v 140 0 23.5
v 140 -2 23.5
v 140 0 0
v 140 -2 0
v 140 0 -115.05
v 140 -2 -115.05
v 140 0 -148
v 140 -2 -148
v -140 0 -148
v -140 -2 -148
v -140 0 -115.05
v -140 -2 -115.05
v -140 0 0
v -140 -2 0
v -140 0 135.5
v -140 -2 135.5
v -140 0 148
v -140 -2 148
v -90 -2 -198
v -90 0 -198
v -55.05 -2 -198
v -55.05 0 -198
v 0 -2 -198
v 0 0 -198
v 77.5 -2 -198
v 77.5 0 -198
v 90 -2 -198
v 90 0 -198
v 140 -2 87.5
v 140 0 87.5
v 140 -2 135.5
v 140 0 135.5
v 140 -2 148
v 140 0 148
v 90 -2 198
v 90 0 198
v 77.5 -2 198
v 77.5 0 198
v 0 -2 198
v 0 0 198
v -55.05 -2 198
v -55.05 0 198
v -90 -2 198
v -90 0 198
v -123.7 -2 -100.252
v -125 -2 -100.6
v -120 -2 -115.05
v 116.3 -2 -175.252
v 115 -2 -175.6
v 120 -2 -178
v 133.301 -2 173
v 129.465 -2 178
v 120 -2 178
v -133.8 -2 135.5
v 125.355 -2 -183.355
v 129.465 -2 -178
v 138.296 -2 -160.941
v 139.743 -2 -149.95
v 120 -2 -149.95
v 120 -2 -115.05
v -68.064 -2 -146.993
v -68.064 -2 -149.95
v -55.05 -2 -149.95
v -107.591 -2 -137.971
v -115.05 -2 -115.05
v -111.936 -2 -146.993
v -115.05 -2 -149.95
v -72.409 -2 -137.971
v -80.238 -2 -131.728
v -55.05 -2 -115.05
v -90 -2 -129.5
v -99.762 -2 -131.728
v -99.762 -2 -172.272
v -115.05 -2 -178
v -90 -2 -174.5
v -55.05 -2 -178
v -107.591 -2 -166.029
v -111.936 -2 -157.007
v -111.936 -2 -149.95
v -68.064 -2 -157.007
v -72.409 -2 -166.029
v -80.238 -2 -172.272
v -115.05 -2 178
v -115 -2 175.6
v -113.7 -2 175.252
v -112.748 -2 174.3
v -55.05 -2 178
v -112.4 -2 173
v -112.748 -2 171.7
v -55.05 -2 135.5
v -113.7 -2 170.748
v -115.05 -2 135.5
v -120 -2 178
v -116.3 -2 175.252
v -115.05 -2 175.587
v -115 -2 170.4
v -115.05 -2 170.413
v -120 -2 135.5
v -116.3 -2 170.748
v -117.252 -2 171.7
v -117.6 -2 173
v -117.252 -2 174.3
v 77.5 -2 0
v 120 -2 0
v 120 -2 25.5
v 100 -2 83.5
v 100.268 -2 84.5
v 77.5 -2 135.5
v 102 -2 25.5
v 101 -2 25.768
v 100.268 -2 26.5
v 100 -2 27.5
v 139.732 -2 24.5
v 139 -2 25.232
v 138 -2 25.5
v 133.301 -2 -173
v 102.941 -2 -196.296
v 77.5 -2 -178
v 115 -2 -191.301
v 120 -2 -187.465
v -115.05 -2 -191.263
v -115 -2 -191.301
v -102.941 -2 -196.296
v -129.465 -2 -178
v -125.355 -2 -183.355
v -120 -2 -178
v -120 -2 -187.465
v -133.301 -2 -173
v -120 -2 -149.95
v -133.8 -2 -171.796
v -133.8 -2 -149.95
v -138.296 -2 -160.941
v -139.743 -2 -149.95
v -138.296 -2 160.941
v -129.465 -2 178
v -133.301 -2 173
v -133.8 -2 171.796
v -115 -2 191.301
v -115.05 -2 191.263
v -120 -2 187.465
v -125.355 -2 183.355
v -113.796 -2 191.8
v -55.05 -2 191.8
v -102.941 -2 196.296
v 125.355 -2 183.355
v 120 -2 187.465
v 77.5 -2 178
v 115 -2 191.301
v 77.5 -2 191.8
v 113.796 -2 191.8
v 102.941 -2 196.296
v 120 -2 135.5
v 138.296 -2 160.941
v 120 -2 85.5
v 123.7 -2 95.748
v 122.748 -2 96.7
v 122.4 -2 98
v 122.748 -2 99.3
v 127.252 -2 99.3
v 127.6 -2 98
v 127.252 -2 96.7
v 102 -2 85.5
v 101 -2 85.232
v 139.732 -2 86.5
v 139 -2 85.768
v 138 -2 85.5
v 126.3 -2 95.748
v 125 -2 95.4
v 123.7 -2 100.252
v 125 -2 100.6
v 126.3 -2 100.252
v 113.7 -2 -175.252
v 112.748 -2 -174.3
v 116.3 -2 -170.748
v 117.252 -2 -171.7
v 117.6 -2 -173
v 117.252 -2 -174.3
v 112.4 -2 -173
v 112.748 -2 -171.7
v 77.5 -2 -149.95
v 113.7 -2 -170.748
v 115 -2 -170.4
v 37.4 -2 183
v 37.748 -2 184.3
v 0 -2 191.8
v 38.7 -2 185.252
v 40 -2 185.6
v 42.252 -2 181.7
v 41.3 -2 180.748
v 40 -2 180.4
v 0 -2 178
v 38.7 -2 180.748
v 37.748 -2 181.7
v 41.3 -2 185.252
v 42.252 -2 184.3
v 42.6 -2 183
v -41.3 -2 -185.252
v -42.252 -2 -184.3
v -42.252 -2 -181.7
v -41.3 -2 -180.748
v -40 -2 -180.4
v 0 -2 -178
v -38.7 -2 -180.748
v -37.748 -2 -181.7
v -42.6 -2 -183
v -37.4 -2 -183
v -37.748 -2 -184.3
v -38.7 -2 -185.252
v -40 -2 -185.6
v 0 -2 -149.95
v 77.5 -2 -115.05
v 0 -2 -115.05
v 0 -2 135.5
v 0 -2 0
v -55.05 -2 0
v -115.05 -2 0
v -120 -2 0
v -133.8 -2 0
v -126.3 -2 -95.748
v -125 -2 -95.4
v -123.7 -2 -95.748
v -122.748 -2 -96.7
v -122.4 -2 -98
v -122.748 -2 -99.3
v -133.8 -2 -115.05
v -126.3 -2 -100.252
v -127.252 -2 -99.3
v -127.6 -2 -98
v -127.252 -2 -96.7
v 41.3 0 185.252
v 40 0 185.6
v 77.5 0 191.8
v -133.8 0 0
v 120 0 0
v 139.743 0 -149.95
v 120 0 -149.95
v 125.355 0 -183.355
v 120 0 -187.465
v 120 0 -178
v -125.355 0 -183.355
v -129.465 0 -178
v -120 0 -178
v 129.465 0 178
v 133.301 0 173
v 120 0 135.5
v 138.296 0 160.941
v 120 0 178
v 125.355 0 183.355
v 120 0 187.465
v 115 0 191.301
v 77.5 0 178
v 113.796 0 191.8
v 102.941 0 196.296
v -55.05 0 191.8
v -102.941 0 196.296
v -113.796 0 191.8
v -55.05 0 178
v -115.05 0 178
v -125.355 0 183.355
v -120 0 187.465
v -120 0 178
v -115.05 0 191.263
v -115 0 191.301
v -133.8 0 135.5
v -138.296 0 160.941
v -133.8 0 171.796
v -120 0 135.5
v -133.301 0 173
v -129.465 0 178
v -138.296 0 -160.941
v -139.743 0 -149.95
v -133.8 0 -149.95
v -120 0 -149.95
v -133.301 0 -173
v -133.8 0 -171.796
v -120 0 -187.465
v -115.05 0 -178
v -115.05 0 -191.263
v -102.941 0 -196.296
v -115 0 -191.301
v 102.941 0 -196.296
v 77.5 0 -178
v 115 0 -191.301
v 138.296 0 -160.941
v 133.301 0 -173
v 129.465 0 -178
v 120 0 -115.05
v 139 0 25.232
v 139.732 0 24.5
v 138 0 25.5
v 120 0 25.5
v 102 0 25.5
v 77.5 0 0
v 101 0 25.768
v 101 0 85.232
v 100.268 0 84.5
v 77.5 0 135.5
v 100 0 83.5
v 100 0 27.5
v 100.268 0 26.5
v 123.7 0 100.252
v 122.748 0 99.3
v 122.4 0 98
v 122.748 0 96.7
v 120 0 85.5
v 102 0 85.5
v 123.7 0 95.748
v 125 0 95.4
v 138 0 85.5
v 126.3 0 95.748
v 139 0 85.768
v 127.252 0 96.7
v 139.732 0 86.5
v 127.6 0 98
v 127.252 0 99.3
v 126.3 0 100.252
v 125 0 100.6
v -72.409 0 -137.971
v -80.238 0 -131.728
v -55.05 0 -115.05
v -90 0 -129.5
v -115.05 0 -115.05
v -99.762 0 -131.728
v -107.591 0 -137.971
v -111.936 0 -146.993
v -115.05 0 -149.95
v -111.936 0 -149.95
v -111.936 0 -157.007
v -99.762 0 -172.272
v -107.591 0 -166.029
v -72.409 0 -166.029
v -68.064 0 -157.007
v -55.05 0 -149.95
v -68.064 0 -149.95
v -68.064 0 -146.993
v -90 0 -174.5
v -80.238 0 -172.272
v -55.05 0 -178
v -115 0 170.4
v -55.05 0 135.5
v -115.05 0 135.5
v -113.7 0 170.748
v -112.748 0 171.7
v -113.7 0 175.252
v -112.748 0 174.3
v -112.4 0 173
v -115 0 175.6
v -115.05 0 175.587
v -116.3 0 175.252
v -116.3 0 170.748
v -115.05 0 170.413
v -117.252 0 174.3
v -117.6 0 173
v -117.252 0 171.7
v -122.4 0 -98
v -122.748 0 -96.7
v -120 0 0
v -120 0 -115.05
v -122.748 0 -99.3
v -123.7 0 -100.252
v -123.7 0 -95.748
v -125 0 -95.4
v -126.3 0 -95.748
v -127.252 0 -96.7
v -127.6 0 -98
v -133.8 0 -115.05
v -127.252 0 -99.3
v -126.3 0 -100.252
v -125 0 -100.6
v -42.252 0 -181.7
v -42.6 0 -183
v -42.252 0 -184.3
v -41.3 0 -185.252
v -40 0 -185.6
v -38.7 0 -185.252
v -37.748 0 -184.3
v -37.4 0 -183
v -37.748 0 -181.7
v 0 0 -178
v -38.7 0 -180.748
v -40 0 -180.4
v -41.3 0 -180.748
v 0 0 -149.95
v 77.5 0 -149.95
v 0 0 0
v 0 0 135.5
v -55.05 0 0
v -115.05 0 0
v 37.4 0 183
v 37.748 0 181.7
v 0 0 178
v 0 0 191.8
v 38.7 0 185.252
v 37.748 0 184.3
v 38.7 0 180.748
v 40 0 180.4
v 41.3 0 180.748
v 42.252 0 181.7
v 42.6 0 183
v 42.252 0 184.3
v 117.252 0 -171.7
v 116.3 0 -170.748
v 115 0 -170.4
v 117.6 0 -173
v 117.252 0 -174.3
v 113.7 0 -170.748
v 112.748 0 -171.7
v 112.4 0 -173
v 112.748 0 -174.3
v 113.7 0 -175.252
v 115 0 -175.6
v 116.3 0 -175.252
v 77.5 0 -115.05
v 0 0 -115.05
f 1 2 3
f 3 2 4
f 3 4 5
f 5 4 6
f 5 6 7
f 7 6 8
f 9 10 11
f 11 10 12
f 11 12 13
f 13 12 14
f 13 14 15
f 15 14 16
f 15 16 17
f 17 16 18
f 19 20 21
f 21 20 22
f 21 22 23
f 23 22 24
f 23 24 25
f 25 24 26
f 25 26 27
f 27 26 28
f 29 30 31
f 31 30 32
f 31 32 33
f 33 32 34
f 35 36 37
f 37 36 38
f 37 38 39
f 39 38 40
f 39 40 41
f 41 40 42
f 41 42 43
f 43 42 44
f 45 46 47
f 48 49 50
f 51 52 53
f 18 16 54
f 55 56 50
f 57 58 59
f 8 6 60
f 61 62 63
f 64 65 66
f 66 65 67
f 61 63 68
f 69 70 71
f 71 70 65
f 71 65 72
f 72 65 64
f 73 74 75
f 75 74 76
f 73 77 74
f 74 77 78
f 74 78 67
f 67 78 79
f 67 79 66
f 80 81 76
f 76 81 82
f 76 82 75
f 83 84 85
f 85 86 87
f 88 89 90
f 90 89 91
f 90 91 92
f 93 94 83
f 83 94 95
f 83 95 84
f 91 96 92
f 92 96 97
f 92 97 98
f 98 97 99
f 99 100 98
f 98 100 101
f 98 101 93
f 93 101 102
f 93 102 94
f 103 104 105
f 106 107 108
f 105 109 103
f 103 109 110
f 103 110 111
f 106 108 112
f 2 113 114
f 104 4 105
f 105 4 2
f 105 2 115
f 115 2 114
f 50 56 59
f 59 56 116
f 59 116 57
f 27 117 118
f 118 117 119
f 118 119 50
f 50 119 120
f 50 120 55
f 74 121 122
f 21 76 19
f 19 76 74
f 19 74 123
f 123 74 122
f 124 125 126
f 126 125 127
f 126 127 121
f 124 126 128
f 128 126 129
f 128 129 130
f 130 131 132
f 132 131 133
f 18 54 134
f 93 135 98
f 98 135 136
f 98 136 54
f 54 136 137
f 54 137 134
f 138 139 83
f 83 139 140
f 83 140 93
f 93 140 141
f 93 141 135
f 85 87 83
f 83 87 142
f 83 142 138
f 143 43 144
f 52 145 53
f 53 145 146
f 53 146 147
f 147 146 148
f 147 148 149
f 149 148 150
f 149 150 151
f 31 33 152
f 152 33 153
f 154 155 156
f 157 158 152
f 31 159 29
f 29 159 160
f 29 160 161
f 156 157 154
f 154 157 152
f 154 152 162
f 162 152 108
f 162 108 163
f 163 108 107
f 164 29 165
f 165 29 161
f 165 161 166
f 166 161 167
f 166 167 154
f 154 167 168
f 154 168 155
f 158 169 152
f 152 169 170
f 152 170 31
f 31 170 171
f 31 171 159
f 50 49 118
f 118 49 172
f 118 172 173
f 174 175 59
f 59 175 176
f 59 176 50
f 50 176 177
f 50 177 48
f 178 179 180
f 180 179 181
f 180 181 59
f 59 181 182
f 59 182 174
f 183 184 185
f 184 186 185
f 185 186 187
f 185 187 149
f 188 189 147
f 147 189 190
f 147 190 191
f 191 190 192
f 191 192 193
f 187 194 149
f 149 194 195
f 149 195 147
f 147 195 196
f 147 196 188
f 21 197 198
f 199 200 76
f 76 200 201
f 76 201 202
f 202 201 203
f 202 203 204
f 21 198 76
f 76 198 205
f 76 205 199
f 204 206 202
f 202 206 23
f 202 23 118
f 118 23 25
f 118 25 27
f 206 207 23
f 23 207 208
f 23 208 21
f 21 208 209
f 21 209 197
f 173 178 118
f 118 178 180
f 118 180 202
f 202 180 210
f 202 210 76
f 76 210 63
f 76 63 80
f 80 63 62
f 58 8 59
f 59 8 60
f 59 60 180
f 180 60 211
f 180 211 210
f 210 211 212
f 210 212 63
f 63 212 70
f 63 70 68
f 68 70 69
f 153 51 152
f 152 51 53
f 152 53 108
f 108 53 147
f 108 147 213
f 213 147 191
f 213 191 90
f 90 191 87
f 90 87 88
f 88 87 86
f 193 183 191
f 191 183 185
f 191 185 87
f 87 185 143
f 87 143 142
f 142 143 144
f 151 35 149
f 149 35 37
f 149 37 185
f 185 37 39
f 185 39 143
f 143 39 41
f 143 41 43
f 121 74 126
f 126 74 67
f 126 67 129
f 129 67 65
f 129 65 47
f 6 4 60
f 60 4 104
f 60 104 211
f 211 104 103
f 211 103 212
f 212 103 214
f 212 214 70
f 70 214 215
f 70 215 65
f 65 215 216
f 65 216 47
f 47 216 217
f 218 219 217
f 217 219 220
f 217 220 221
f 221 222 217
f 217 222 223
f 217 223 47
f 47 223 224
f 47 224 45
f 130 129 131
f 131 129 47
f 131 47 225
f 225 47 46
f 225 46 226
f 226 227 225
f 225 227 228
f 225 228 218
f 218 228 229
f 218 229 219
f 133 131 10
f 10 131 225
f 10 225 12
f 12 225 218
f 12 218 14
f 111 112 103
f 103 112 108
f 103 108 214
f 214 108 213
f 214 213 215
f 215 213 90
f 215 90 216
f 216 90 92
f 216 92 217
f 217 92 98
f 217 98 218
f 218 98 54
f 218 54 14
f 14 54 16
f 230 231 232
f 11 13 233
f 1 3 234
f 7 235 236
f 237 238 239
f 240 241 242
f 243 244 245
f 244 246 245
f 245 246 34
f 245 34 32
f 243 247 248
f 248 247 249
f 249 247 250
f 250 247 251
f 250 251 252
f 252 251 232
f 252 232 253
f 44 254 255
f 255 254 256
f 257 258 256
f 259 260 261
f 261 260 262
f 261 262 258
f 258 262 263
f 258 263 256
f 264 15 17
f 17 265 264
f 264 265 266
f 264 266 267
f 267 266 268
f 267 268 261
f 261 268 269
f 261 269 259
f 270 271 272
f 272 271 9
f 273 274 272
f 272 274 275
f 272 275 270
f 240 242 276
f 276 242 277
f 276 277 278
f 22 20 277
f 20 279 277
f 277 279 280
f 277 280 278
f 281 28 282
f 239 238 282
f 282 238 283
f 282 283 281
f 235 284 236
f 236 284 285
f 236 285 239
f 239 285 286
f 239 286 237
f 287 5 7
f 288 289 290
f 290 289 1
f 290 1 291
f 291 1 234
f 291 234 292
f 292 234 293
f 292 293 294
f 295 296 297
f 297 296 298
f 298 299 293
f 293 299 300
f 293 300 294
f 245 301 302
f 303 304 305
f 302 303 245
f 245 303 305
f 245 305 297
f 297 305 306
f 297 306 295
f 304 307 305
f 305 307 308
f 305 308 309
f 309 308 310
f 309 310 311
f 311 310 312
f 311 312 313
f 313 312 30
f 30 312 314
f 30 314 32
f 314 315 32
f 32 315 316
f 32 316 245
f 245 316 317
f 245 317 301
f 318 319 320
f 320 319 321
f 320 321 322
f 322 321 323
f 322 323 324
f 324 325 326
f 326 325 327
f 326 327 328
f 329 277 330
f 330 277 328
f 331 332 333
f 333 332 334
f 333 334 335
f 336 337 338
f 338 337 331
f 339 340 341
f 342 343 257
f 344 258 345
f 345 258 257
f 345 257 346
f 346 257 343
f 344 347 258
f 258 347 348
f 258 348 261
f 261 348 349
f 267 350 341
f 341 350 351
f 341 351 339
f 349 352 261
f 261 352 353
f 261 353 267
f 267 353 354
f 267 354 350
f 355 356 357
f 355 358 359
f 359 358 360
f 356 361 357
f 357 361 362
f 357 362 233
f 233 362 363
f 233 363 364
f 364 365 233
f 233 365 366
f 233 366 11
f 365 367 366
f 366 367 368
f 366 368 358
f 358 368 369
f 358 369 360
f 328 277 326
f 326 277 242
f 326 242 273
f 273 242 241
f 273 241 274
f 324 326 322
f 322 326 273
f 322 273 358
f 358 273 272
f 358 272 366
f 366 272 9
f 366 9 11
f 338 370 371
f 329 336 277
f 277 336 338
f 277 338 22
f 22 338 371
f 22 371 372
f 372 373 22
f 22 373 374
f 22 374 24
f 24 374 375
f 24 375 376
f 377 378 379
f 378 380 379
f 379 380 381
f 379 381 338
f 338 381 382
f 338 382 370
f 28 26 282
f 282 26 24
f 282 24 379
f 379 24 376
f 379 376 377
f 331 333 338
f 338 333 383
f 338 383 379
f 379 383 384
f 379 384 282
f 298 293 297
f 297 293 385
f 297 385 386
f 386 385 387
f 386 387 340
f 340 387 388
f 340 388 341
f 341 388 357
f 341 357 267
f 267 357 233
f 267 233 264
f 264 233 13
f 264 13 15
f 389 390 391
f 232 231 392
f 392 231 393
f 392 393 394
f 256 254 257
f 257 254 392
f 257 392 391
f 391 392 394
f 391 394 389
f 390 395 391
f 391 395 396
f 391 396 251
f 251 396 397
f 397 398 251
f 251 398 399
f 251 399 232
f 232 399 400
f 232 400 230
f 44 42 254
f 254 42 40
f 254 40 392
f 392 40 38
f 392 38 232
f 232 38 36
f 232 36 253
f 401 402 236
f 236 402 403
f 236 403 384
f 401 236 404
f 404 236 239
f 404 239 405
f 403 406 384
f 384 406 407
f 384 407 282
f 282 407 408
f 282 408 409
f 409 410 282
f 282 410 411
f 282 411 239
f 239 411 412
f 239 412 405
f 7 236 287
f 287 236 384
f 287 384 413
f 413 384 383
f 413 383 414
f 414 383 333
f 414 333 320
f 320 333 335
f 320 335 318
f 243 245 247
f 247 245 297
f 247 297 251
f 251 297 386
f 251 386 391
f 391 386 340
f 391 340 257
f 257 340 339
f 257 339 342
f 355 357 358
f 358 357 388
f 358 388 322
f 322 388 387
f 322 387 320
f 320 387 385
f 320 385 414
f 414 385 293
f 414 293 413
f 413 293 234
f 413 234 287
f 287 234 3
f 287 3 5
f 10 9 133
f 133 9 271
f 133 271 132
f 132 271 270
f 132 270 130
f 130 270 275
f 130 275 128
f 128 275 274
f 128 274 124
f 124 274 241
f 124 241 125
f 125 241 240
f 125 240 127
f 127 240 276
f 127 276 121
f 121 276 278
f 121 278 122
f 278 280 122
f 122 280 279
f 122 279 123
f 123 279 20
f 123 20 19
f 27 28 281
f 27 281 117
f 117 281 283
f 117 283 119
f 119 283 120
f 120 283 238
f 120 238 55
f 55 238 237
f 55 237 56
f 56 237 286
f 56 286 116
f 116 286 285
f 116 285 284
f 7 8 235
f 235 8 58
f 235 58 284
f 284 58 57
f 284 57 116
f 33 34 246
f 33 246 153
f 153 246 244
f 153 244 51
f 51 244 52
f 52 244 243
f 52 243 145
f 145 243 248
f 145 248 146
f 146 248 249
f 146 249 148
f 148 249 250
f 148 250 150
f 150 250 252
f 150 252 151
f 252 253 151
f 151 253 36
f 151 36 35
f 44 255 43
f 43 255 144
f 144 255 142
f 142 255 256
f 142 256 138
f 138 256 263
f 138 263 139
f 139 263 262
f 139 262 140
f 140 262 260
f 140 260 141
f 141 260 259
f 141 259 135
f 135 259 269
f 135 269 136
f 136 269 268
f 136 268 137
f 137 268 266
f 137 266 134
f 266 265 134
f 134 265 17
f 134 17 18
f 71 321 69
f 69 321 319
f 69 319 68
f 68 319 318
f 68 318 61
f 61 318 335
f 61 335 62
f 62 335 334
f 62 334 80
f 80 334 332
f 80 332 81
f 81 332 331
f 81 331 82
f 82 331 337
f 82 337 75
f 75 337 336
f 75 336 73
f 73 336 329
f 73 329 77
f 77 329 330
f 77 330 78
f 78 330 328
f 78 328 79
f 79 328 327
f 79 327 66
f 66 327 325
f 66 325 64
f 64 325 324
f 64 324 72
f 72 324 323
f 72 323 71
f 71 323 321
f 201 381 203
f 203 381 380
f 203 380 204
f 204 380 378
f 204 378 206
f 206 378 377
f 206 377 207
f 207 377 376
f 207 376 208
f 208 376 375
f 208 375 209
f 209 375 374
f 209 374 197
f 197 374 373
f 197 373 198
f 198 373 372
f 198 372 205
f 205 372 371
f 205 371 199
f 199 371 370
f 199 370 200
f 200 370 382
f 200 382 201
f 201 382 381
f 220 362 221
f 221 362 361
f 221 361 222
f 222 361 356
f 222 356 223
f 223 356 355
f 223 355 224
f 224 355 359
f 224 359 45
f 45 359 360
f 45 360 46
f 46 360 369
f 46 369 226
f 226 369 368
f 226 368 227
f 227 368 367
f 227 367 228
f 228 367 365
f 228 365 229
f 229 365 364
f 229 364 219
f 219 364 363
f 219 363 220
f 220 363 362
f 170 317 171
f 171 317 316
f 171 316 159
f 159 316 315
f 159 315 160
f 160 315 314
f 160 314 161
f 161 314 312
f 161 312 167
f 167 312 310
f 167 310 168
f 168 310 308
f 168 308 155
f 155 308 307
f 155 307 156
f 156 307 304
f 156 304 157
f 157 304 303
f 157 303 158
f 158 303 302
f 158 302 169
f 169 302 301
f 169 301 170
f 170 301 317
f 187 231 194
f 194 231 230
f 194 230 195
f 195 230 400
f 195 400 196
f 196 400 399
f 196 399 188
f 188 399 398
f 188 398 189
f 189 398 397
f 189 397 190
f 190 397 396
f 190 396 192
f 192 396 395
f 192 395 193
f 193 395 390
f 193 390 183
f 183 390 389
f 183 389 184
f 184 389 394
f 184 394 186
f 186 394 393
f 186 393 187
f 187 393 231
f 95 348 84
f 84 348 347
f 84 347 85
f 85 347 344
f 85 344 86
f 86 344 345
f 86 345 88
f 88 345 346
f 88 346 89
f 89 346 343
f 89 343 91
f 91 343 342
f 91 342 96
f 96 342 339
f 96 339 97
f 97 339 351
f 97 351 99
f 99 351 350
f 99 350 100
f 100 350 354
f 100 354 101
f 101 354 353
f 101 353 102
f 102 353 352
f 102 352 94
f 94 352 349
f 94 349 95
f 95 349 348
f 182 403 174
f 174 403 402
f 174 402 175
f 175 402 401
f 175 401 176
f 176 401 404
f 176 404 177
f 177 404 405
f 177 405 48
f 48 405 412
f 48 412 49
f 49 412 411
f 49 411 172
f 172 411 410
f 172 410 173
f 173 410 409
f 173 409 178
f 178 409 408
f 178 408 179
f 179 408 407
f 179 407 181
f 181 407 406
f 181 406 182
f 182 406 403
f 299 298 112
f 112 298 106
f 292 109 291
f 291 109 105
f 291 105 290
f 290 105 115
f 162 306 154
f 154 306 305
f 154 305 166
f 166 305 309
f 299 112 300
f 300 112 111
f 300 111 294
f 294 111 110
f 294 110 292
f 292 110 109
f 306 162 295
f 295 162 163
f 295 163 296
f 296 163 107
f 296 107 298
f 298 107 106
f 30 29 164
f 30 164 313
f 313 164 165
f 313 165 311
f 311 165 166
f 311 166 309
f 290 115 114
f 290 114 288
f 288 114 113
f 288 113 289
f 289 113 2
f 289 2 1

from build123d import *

# Parameters (mm, degrees)
SKETCH1_W             = 280
SKETCH1_H             = 396
BASE_FLANGE1_DEPTH    = 2
BREAK_CORNER1_START   = -2
BREAK_CORNER1_DEPTH   = 2
SKETCH2_R             = 22.5
CUT_EXTRUDE1_DEPTH    = 243.503608221
SKETCH3_R             = 2.6
CUT_EXTRUDE2_DEPTH    = 243.503608221
SKETCH4_W             = 40
SKETCH4_H             = 60
CUT_EXTRUDE3_DEPTH    = 243.503608221
BREAK_CORNER2_START   = -2
BREAK_CORNER2_DEPTH   = 2
BREAK_CORNER2_2_DEPTH = 2


# Read off the part's stored shape, not the designer's step: Break-Corner1, Break-Corner2
# Sheet-metal steps are written as plain solids
with BuildPart() as part:
    # Sketch1 → Base-Flange1 (new body)
    with BuildSketch(Plane(origin=(0, 0, 0), x_dir=(1, 0, 0), z_dir=(0, 1, 0))):
        Rectangle(SKETCH1_W, SKETCH1_H)
    extrude(amount=-BASE_FLANGE1_DEPTH)

    # Break-Corner1 outline → Break-Corner1 (cut)
    with BuildSketch(Plane(origin=(0, 0, 0), x_dir=(1, 0, 0), z_dir=(0, 1, 0)).offset(BREAK_CORNER1_START)):
        with BuildLine():
            ThreePointArc((-140, 148), (-125.355339059, 183.355339059), (-90, 198))
            Line((-90, 198), (-140, 198))
            Line((-140, 198), (-140, 148))
        make_face()
        with BuildLine():
            Line((140, 198), (90, 198))
            ThreePointArc((90, 198), (125.355339059, 183.355339059), (140, 148))
            Line((140, 148), (140, 198))
        make_face()
        with BuildLine():
            ThreePointArc((-90, -198), (-125.355339059, -183.355339059), (-140, -148))
            Line((-140, -148), (-140, -198))
            Line((-140, -198), (-90, -198))
        make_face()
        with BuildLine():
            Line((140, -198), (140, -148))
            ThreePointArc((140, -148), (125.355339059, -183.355339059), (90, -198))
            Line((90, -198), (140, -198))
        make_face()
    extrude(amount=BREAK_CORNER1_DEPTH, mode=Mode.SUBTRACT)

    # Sketch2 → Cut-Extrude1 (cut, through all)
    with BuildSketch(Plane(origin=(0, 0, 0), x_dir=(1, 0, 0), z_dir=(0, 1, 0))):
        with Locations(Location((-90, 152, 0), (0, 0, 270))):
            Circle(SKETCH2_R)
    extrude(amount=-CUT_EXTRUDE1_DEPTH, mode=Mode.SUBTRACT)

    # Sketch3 → Cut-Extrude2 (cut, through all)
    with BuildSketch(Plane(origin=(0, 0, 0), x_dir=(1, 0, 0), z_dir=(0, 1, 0))):
        with Locations(Location((-40, 183, 0), (0, 0, 270))):
            Circle(SKETCH3_R)
        with Locations(Location((-125, 98, 0), (0, 0, 270))):
            Circle(SKETCH3_R)
        with Locations(Location((125, -98, 0), (0, 0, 270))):
            Circle(SKETCH3_R)
        with Locations(Location((40, -183, 0), (0, 0, 270))):
            Circle(SKETCH3_R)
        with Locations(Location((-115, -173, 0), (0, 0, 270))):
            Circle(SKETCH3_R)
        with Locations(Location((115, 173, 0), (0, 0, 270))):
            Circle(SKETCH3_R)
    extrude(amount=-CUT_EXTRUDE2_DEPTH, mode=Mode.SUBTRACT)

    # Sketch4 → Cut-Extrude3 (cut, through all)
    with BuildSketch(Plane(origin=(0, 0, 0), x_dir=(1, 0, 0), z_dir=(0, 1, 0))):
        with Locations((120, -55.5)):
            Rectangle(SKETCH4_W, SKETCH4_H)
    extrude(amount=-CUT_EXTRUDE3_DEPTH, mode=Mode.SUBTRACT)

    # Break-Corner2 outline → Break-Corner2 (cut)
    with BuildSketch(Plane(origin=(0, 0, 0), x_dir=(1, 0, 0), z_dir=(0, 1, 0)).offset(BREAK_CORNER2_START)):
        with BuildLine():
            Line((140, -85.5), (138, -85.5))
            ThreePointArc((138, -85.5), (139.414213562, -86.085786438), (140, -87.5))
            Line((140, -87.5), (140, -85.5))
        make_face()
        with BuildLine():
            ThreePointArc((140, -23.5), (139.414213562, -24.914213562), (138, -25.5))
            Line((138, -25.5), (140, -25.5))
            Line((140, -25.5), (140, -23.5))
        make_face()
    extrude(amount=BREAK_CORNER2_DEPTH, mode=Mode.SUBTRACT)

    # Break-Corner2 2 outline → Break-Corner2 2 (add)
    with BuildSketch(Plane(origin=(0, 0, 0), x_dir=(1, 0, 0), z_dir=(0, 1, 0)).offset(BREAK_CORNER2_START)):
        with BuildLine():
            Line((100, -25.5), (100, -27.5))
            ThreePointArc((100, -27.5), (100.585786438, -26.085786438), (102, -25.5))
            Line((102, -25.5), (100, -25.5))
        make_face()
        with BuildLine():
            ThreePointArc((102, -85.5), (100.585786438, -84.914213562), (100, -83.5))
            Line((100, -83.5), (100, -85.5))
            Line((100, -85.5), (102, -85.5))
        make_face()
    extrude(amount=BREAK_CORNER2_2_DEPTH)


solid = part.part
